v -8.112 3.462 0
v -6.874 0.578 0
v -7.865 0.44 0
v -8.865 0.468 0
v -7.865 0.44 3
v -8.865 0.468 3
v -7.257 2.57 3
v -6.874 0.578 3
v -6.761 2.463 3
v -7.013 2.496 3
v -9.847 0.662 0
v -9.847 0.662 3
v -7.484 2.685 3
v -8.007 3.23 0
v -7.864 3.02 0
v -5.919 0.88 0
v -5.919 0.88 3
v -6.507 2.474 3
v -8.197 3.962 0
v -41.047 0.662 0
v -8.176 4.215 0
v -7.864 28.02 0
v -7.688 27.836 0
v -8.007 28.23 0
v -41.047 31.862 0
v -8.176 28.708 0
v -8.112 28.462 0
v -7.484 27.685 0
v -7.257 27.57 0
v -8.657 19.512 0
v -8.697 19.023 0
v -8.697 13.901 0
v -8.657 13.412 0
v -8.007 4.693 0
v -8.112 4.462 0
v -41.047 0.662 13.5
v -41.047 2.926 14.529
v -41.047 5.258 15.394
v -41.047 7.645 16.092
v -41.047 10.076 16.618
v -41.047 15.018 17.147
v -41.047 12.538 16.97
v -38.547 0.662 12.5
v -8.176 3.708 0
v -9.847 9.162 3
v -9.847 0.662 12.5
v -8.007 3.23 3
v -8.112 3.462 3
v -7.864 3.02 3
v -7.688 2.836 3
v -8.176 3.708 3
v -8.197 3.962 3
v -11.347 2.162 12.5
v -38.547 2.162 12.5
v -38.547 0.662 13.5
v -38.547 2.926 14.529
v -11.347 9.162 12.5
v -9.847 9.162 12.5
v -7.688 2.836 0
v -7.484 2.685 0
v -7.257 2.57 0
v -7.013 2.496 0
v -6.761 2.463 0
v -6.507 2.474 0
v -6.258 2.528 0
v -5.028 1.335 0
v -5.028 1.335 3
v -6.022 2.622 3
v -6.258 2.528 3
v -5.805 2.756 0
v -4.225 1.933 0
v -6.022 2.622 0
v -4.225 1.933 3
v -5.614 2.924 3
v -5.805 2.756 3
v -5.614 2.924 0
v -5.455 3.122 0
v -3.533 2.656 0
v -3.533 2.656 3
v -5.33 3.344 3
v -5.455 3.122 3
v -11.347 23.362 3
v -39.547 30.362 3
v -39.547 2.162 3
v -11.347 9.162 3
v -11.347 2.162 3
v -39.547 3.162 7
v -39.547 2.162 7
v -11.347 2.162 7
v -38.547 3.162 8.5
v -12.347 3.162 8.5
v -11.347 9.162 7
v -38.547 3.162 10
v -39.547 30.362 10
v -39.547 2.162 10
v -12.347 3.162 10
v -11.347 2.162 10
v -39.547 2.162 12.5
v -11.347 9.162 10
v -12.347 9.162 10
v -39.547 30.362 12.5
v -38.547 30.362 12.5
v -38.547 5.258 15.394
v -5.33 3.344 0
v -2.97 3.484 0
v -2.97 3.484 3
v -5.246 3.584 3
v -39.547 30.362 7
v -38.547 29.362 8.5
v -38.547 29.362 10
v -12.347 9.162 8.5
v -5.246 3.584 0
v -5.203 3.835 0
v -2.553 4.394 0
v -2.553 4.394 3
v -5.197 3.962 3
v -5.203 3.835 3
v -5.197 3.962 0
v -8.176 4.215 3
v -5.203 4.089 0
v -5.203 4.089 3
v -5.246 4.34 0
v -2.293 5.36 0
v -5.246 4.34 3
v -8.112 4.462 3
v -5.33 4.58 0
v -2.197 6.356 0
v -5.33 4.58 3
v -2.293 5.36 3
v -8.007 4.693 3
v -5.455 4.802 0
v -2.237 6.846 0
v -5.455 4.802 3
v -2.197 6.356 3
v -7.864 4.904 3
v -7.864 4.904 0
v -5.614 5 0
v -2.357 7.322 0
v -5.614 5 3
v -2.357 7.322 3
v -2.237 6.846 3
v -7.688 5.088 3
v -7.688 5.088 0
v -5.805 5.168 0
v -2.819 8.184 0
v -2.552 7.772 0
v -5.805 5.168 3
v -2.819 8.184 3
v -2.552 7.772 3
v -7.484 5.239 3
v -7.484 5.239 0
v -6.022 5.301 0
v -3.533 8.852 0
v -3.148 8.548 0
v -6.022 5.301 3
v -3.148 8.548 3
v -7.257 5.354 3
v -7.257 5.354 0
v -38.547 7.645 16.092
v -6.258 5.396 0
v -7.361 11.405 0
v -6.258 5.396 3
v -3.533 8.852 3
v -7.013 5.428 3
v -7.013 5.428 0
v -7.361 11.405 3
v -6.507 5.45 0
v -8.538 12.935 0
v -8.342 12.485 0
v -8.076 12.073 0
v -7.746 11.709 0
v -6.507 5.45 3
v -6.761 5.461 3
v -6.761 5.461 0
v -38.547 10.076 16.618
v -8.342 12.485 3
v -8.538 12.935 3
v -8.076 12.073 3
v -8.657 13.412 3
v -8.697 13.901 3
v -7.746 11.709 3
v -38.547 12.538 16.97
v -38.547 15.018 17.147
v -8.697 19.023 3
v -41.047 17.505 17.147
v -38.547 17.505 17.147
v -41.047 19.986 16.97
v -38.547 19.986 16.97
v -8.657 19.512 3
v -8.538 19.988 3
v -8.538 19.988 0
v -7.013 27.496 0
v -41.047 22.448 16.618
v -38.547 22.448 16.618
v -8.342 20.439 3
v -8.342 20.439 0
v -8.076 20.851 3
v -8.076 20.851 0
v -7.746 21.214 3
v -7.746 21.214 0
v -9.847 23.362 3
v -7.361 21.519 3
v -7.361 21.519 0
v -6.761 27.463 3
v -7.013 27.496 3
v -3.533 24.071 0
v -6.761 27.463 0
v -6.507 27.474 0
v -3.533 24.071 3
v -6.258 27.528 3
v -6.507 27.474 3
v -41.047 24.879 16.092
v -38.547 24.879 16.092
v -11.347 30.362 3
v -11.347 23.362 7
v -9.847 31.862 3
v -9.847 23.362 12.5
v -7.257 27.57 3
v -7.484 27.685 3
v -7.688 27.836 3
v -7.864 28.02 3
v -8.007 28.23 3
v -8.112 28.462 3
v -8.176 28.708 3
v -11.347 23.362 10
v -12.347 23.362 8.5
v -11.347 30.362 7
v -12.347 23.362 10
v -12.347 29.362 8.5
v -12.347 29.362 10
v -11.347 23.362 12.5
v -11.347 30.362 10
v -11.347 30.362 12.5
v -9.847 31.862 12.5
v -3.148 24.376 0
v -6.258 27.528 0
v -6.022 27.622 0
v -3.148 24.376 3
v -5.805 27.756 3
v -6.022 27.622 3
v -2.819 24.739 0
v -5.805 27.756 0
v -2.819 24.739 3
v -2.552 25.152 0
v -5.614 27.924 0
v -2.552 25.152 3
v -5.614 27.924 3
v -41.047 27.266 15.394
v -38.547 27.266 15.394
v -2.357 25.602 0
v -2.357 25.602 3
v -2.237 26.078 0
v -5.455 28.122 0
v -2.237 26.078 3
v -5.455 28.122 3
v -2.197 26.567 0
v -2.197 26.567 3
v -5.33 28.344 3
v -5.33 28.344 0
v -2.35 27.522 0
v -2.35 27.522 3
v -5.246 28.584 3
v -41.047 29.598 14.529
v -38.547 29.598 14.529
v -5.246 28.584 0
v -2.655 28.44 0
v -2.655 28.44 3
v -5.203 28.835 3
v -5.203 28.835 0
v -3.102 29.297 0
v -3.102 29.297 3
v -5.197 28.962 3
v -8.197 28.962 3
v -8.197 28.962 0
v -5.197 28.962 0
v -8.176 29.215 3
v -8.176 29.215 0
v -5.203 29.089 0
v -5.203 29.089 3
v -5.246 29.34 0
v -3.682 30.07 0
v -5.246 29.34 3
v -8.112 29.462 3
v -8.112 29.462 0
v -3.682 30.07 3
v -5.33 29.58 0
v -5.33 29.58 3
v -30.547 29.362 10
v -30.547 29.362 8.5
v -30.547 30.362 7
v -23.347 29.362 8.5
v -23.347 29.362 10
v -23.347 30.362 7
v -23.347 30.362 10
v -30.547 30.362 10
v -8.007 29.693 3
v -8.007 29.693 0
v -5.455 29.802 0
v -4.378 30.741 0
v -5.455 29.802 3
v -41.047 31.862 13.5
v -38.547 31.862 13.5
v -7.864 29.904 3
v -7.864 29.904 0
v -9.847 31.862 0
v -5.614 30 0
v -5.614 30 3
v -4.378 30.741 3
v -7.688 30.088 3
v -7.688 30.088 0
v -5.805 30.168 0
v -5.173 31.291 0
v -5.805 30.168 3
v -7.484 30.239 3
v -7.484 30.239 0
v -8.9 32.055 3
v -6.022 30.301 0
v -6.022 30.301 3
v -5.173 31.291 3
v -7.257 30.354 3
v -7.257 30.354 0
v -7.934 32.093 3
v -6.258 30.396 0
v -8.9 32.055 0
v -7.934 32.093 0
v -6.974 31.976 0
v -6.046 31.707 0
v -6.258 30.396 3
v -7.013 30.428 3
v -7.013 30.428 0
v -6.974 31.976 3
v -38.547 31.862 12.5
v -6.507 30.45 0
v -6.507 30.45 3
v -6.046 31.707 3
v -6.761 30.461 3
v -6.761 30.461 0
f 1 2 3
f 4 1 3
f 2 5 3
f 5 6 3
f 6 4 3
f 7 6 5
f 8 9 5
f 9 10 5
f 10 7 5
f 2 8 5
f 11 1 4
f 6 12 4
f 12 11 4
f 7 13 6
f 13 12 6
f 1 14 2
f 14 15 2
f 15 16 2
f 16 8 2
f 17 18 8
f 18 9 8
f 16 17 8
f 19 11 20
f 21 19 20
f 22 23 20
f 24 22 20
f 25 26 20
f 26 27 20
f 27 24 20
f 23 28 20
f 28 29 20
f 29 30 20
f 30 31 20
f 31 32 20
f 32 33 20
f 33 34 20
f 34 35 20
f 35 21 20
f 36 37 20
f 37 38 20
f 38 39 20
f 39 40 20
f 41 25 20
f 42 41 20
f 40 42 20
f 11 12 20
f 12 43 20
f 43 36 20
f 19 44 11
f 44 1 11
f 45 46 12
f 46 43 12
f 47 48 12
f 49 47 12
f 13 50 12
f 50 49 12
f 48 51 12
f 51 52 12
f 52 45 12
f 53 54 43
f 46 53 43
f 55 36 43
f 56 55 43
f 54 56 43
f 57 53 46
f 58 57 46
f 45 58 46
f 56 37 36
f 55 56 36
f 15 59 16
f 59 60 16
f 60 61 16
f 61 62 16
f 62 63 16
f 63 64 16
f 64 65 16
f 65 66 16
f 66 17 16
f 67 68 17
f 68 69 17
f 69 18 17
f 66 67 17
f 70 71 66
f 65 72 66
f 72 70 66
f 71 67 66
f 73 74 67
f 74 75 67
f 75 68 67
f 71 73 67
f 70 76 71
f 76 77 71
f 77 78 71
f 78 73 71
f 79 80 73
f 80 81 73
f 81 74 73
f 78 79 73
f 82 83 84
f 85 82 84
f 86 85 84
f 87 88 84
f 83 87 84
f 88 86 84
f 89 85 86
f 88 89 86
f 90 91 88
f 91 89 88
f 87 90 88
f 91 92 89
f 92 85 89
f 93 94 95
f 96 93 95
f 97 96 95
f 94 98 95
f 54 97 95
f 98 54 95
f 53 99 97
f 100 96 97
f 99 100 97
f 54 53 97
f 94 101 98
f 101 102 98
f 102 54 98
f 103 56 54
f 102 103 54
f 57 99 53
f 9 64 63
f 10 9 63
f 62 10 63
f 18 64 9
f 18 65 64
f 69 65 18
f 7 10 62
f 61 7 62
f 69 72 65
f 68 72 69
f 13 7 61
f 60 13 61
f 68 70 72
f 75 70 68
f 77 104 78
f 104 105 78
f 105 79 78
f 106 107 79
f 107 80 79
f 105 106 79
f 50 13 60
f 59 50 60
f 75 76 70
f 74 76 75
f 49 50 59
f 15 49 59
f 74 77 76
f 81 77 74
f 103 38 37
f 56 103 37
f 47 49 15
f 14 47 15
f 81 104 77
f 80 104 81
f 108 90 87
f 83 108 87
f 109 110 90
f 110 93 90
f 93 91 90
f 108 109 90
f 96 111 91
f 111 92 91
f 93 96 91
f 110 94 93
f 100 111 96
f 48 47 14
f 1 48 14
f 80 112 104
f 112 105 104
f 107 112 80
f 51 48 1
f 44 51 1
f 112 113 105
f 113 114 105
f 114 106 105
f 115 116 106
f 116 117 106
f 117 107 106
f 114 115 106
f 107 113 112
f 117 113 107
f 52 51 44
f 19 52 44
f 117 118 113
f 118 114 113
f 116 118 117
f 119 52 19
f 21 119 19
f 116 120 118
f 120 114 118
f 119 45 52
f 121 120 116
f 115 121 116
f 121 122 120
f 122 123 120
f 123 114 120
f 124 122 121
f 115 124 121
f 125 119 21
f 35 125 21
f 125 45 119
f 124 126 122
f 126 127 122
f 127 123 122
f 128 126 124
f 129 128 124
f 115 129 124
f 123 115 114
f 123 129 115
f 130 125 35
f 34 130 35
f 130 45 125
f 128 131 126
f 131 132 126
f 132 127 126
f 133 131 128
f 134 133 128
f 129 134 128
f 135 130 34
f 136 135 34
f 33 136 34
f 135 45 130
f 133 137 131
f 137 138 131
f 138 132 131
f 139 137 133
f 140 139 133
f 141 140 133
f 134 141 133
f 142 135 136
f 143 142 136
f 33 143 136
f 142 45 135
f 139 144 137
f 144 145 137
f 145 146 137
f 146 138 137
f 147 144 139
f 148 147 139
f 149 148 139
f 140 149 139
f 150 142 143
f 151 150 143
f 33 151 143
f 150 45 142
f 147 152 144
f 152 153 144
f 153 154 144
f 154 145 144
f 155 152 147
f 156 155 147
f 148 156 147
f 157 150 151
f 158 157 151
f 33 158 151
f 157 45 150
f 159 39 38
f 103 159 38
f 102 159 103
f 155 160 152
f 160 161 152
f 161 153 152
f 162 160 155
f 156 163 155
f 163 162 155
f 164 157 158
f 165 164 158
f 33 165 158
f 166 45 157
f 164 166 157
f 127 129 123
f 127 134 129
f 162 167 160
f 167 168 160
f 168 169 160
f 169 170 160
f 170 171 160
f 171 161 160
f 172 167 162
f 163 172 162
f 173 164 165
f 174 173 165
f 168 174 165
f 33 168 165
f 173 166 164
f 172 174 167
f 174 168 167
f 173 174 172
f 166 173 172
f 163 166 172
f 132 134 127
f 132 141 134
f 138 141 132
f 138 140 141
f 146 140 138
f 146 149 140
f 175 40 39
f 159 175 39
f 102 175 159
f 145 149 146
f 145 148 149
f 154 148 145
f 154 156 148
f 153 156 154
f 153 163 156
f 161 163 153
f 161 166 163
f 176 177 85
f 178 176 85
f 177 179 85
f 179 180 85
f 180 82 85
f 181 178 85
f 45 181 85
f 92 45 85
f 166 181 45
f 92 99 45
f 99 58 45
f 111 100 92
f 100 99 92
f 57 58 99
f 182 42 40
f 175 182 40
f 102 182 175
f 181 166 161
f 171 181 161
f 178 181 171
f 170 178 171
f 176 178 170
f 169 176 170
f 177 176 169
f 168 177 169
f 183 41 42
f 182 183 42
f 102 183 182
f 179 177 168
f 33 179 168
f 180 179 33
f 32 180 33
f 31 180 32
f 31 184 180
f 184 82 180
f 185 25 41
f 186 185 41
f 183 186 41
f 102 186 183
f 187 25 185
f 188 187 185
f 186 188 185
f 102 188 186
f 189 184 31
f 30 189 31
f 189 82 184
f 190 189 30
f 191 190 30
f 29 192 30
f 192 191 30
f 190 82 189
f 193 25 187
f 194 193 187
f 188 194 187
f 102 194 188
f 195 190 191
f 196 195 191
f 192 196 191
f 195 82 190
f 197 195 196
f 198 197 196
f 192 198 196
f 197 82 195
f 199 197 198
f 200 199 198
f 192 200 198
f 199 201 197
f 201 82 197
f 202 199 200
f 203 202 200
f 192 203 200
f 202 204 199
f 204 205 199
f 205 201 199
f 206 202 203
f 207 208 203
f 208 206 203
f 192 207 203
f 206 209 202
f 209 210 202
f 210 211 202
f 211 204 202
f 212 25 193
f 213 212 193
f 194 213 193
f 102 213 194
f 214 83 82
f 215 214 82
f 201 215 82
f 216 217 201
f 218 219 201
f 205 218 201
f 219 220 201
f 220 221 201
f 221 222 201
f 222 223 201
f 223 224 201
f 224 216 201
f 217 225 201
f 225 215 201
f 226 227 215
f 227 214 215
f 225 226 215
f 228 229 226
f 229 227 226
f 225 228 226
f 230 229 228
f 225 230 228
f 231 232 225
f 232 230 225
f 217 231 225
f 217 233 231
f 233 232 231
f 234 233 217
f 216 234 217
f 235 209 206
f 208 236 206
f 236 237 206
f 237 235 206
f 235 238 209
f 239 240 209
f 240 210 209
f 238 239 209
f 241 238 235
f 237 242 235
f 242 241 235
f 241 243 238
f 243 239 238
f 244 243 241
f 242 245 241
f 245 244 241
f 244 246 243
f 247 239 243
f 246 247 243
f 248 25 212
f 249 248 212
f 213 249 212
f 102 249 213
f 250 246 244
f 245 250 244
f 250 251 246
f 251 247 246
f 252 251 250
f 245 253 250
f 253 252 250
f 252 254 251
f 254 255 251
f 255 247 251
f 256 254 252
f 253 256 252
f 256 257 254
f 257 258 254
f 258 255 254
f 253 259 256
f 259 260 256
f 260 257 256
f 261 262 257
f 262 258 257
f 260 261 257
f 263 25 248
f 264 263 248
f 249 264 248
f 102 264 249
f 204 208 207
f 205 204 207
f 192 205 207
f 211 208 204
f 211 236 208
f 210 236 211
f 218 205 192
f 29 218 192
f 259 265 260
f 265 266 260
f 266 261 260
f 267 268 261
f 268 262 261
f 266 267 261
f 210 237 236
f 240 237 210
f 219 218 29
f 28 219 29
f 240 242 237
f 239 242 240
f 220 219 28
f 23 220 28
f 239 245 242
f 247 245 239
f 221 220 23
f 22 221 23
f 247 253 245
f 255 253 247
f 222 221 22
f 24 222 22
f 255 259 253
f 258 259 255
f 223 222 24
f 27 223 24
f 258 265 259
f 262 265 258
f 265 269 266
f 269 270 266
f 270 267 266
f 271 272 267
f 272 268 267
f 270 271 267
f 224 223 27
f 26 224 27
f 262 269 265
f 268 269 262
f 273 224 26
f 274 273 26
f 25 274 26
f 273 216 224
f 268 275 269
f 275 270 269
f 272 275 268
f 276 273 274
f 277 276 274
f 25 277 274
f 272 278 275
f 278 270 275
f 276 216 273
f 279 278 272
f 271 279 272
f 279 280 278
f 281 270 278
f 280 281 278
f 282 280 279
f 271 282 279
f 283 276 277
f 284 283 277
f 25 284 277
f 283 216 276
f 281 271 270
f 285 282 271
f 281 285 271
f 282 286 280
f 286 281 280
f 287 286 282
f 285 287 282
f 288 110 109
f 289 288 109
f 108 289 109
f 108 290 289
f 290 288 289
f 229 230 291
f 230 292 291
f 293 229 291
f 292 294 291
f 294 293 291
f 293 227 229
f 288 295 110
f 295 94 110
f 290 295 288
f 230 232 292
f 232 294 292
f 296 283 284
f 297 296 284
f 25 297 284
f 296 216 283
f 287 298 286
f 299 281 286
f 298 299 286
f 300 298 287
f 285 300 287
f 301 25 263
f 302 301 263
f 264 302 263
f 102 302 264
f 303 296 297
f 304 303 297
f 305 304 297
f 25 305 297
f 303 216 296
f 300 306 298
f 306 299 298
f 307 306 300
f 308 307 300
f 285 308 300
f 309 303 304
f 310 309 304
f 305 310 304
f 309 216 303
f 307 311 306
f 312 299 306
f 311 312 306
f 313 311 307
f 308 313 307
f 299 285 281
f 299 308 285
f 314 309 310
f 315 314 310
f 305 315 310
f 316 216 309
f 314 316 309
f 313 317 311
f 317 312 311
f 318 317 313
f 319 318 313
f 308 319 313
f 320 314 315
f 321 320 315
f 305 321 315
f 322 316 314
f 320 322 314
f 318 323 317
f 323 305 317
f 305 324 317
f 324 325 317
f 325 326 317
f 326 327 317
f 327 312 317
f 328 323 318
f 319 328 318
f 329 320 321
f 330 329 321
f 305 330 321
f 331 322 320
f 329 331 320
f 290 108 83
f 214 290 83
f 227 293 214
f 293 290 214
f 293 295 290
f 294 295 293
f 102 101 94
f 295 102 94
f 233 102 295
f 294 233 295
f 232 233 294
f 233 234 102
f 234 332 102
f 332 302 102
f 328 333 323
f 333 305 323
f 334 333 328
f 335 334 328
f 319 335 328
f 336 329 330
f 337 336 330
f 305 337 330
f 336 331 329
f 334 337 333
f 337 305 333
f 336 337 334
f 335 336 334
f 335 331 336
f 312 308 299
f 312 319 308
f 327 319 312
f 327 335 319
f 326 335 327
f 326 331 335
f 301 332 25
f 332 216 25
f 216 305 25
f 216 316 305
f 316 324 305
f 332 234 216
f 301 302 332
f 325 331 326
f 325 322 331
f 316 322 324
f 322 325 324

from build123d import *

# Parameters (mm, degrees)
CROQUIS1_R              = 1.5
SALIENTE_EXTRUIR1_DEPTH = 3
CROQUIS2_W              = 31.2
CROQUIS2_H              = 31.2
CROQUIS2_W_2            = 28.2
CROQUIS2_H_2            = 28.2
SALIENTE_EXTRUIR2_DEPTH = 9.5
CROQUIS4_W              = 28.2
CROQUIS4_H              = 28.2
CROQUIS4_W_2            = 26.2
CROQUIS4_H_2            = 26.2
SALIENTE_EXTRUIR3_DEPTH = 3
CORTAR_EXTRUIR1_REACH   = 69.732
CROQUIS8_W              = 7.2
CROQUIS8_H              = 1
CORTAR_EXTRUIR2_START   = -9.5
CROQUIS9_W              = 5.627722912
CROQUIS9_H              = 14.2
CORTAR_EXTRUIR2_DEPTH   = 9.5
CROQUIS10_W             = 2.5
CROQUIS10_H             = 31.2
SALIENTE_EXTRUIR4_DEPTH = 1
CORTAR_EXTRUIR3_DEPTH   = 3
SALIENTE_EXTRUIR5_START = -2.5
SALIENTE_EXTRUIR5_DEPTH = 2.5


with BuildPart() as part:
    # Croquis1 → Saliente-Extruir1 (new body)
    with BuildSketch(Plane.XY):
        with BuildLine():
            Line((-52.197309417, 4.461883408), (-50.197309417, 4.461883408))
            Line((-50.197309417, 4.461883408), (-44.197309417, 8.461883408))
            Line((-44.197309417, 8.461883408), (-44.197309417, 24.461883408))
            Line((-44.197309417, 24.461883408), (-50.197309417, 28.461883408))
            Line((-50.197309417, 28.461883408), (-52.197309417, 28.461883408))
            ThreePointArc((-52.197309417, 28.461883408), (-56.197309417, 32.461883408), (-52.197309417, 36.461883408))
            Line((-52.197309417, 36.461883408), (-5.197309417, 36.461883408))
            ThreePointArc((-5.197309417, 36.461883408), (-3.075989073, 35.583203752), (-2.197309417, 33.461883408))
            Line((-2.197309417, 33.461883408), (-2.197309417, 26.567434684))
            ThreePointArc((-2.197309417, 26.567434684), (-2.552285621, 25.151860907), (-3.533208828, 24.071283801))
            Line((-3.533208828, 24.071283801), (-7.361410006, 21.519149682))
            ThreePointArc((-7.361410006, 21.519149682), (-8.342333213, 20.438572576), (-8.697309417, 19.022998799))
            Line((-8.697309417, 19.022998799), (-8.697309417, 13.900768017))
            ThreePointArc((-8.697309417, 13.900768017), (-8.342333213, 12.48519424), (-7.361410006, 11.404617134))
            Line((-7.361410006, 11.404617134), (-3.533208828, 8.852483016))
            ThreePointArc((-3.533208828, 8.852483016), (-2.552285621, 7.771905909), (-2.197309417, 6.356332133))
            Line((-2.197309417, 6.356332133), (-2.197309417, -0.538116592))
            ThreePointArc((-2.197309417, -0.538116592), (-3.075989073, -2.659436935), (-5.197309417, -3.538116592))
            Line((-5.197309417, -3.538116592), (-52.197309417, -3.538116592))
            ThreePointArc((-52.197309417, -3.538116592), (-56.197309417, 0.461883408), (-52.197309417, 4.461883408))
        make_face()
        with Locations((-6.697309417, 28.961883408)):
            Circle(CROQUIS1_R, mode=Mode.SUBTRACT)
        with Locations((-52.197309417, 0.461883408)):
            Circle(CROQUIS1_R, mode=Mode.SUBTRACT)
        with Locations((-6.697309417, 3.961883408)):
            Circle(CROQUIS1_R, mode=Mode.SUBTRACT)
        with Locations((-52.197309417, 32.461883408)):
            Circle(CROQUIS1_R, mode=Mode.SUBTRACT)
    extrude(amount=SALIENTE_EXTRUIR1_DEPTH)

    # Croquis2 → Saliente-Extruir2 (add)
    with BuildSketch(Plane.XY.offset(3)):
        with Locations((-25.447309417, 16.261883408)):
            Rectangle(CROQUIS2_W, CROQUIS2_H)
        with Locations((-25.447309417, 16.261883408)):
            Rectangle(CROQUIS2_W_2, CROQUIS2_H_2, mode=Mode.SUBTRACT)
    extrude(amount=SALIENTE_EXTRUIR2_DEPTH)

    # Croquis4 → Saliente-Extruir3 (add)
    with BuildSketch(Plane.XY.offset(7)):
        with Locations((-25.447309417, 16.261883408)):
            Rectangle(CROQUIS4_W, CROQUIS4_H)
        with Locations((-25.447309417, 16.261883408)):
            Rectangle(CROQUIS4_W_2, CROQUIS4_H_2, mode=Mode.SUBTRACT)
    extrude(amount=SALIENTE_EXTRUIR3_DEPTH)

    # Cortar-Barrer1: sweep along a path in Croquis7
    with BuildLine(Plane.XY.offset(10)) as cortar_barrer1_path:
        Line((-39.047309417, 29.861883408), (-11.847309417, 29.861883408))
        Line((-11.847309417, 29.861883408), (-11.847309417, 2.661883408))
        Line((-11.847309417, 2.661883408), (-39.047309417, 2.661883408))
        Line((-39.047309417, 2.661883408), (-39.047309417, 29.861883408))
    # Croquis6 → Cortar-Barrer1 (sweep, cut)
    with BuildSketch(Plane(origin=(0, 3.161883408, 0), x_dir=(-1, 0, 0), z_dir=(0, -1, 0))):
        Polygon((38.547309417, -8.5), (38.547309417, -7), (39.547309417, -7), align=None)
    sweep(path=cortar_barrer1_path.line, transition=Transition.RIGHT, mode=Mode.SUBTRACT)

    # Cortar-Extruir1: up to this plane
    cortar_extruir1_end = Plane(origin=(-39.697309417, 30.361883408, 7), z_dir=(0, -0.8320502943378436, -0.5547001962252293))
    # Croquis8 → Cortar-Extruir1 (cut, up to the surface)
    with BuildSketch(Plane.XY.offset(10), mode=Mode.PRIVATE) as cortar_extruir1_sk1:
        with Locations((-26.947309417, 29.861883408)):
            Rectangle(CROQUIS8_W, CROQUIS8_H)
    cortar_extruir1_tool1 = split(extrude(cortar_extruir1_sk1.sketch, amount=-CORTAR_EXTRUIR1_REACH, mode=Mode.PRIVATE), bisect_by=cortar_extruir1_end, keep=Keep.BOTH, mode=Mode.PRIVATE)
    add(cortar_extruir1_tool1.solids().sort_by_distance((-26.947309, 29.861883, 10))[0], mode=Mode.SUBTRACT)

    # Croquis9 → Cortar-Extruir2 (cut)
    with BuildSketch(Plane.XY.offset(12.5).offset(CORTAR_EXTRUIR2_START)):
        with Locations((-12.661170873, 16.261883408)):
            Rectangle(CROQUIS9_W, CROQUIS9_H)
    extrude(amount=CORTAR_EXTRUIR2_DEPTH, mode=Mode.SUBTRACT)

    # Croquis10 → Saliente-Extruir4 (add)
    with BuildSketch(Plane.XY.offset(12.5)):
        with Locations((-39.797309417, 16.261883408)):
            Rectangle(CROQUIS10_W, CROQUIS10_H)
    extrude(amount=SALIENTE_EXTRUIR4_DEPTH)

    # Croquis12 → Cortar-Extruir3 (cut)
    with BuildSketch(Plane.XY.offset(3)):
        with BuildLine():
            Line((-9.847309417, 31.861883408), (-41.047309417, 31.861883408))
            Line((-41.047309417, 31.861883408), (-41.047309417, 0.661883408))
            Line((-41.047309417, 0.661883408), (-9.847309417, 0.661883408))
            ThreePointArc((-9.847309417, 0.661883408), (-4.614210238, 1.617448149), (-2.197309417, 6.356332133))
            Line((-2.197309417, 6.356332133), (-2.197309417, -17.8731401))
            Line((-2.197309417, -17.8731401), (-65.359464881, -17.8731401))
            Line((-65.359464881, -17.8731401), (-65.359464881, 40.399106007))
            Line((-65.359464881, 40.399106007), (-2.197309417, 40.399106007))
            Line((-2.197309417, 40.399106007), (-2.197309417, 26.567434684))
            ThreePointArc((-2.197309417, 26.567434684), (-4.764439849, 31.03216691), (-9.847309417, 31.861883408))
        make_face()
    extrude(amount=-CORTAR_EXTRUIR3_DEPTH, mode=Mode.SUBTRACT)

    # Croquis13 → Saliente-Extruir5 (add)
    with BuildSketch(Plane.ZY.offset(41.047309417).offset(SALIENTE_EXTRUIR5_START)):
        with BuildLine():
            Line((13.5, 31.861883408), (13.5, 0.661883408))
            ThreePointArc((13.5, 0.661883408), (17.168865325, 16.261883408), (13.5, 31.861883408))
        make_face()
    extrude(amount=SALIENTE_EXTRUIR5_DEPTH)


solid = part.part
